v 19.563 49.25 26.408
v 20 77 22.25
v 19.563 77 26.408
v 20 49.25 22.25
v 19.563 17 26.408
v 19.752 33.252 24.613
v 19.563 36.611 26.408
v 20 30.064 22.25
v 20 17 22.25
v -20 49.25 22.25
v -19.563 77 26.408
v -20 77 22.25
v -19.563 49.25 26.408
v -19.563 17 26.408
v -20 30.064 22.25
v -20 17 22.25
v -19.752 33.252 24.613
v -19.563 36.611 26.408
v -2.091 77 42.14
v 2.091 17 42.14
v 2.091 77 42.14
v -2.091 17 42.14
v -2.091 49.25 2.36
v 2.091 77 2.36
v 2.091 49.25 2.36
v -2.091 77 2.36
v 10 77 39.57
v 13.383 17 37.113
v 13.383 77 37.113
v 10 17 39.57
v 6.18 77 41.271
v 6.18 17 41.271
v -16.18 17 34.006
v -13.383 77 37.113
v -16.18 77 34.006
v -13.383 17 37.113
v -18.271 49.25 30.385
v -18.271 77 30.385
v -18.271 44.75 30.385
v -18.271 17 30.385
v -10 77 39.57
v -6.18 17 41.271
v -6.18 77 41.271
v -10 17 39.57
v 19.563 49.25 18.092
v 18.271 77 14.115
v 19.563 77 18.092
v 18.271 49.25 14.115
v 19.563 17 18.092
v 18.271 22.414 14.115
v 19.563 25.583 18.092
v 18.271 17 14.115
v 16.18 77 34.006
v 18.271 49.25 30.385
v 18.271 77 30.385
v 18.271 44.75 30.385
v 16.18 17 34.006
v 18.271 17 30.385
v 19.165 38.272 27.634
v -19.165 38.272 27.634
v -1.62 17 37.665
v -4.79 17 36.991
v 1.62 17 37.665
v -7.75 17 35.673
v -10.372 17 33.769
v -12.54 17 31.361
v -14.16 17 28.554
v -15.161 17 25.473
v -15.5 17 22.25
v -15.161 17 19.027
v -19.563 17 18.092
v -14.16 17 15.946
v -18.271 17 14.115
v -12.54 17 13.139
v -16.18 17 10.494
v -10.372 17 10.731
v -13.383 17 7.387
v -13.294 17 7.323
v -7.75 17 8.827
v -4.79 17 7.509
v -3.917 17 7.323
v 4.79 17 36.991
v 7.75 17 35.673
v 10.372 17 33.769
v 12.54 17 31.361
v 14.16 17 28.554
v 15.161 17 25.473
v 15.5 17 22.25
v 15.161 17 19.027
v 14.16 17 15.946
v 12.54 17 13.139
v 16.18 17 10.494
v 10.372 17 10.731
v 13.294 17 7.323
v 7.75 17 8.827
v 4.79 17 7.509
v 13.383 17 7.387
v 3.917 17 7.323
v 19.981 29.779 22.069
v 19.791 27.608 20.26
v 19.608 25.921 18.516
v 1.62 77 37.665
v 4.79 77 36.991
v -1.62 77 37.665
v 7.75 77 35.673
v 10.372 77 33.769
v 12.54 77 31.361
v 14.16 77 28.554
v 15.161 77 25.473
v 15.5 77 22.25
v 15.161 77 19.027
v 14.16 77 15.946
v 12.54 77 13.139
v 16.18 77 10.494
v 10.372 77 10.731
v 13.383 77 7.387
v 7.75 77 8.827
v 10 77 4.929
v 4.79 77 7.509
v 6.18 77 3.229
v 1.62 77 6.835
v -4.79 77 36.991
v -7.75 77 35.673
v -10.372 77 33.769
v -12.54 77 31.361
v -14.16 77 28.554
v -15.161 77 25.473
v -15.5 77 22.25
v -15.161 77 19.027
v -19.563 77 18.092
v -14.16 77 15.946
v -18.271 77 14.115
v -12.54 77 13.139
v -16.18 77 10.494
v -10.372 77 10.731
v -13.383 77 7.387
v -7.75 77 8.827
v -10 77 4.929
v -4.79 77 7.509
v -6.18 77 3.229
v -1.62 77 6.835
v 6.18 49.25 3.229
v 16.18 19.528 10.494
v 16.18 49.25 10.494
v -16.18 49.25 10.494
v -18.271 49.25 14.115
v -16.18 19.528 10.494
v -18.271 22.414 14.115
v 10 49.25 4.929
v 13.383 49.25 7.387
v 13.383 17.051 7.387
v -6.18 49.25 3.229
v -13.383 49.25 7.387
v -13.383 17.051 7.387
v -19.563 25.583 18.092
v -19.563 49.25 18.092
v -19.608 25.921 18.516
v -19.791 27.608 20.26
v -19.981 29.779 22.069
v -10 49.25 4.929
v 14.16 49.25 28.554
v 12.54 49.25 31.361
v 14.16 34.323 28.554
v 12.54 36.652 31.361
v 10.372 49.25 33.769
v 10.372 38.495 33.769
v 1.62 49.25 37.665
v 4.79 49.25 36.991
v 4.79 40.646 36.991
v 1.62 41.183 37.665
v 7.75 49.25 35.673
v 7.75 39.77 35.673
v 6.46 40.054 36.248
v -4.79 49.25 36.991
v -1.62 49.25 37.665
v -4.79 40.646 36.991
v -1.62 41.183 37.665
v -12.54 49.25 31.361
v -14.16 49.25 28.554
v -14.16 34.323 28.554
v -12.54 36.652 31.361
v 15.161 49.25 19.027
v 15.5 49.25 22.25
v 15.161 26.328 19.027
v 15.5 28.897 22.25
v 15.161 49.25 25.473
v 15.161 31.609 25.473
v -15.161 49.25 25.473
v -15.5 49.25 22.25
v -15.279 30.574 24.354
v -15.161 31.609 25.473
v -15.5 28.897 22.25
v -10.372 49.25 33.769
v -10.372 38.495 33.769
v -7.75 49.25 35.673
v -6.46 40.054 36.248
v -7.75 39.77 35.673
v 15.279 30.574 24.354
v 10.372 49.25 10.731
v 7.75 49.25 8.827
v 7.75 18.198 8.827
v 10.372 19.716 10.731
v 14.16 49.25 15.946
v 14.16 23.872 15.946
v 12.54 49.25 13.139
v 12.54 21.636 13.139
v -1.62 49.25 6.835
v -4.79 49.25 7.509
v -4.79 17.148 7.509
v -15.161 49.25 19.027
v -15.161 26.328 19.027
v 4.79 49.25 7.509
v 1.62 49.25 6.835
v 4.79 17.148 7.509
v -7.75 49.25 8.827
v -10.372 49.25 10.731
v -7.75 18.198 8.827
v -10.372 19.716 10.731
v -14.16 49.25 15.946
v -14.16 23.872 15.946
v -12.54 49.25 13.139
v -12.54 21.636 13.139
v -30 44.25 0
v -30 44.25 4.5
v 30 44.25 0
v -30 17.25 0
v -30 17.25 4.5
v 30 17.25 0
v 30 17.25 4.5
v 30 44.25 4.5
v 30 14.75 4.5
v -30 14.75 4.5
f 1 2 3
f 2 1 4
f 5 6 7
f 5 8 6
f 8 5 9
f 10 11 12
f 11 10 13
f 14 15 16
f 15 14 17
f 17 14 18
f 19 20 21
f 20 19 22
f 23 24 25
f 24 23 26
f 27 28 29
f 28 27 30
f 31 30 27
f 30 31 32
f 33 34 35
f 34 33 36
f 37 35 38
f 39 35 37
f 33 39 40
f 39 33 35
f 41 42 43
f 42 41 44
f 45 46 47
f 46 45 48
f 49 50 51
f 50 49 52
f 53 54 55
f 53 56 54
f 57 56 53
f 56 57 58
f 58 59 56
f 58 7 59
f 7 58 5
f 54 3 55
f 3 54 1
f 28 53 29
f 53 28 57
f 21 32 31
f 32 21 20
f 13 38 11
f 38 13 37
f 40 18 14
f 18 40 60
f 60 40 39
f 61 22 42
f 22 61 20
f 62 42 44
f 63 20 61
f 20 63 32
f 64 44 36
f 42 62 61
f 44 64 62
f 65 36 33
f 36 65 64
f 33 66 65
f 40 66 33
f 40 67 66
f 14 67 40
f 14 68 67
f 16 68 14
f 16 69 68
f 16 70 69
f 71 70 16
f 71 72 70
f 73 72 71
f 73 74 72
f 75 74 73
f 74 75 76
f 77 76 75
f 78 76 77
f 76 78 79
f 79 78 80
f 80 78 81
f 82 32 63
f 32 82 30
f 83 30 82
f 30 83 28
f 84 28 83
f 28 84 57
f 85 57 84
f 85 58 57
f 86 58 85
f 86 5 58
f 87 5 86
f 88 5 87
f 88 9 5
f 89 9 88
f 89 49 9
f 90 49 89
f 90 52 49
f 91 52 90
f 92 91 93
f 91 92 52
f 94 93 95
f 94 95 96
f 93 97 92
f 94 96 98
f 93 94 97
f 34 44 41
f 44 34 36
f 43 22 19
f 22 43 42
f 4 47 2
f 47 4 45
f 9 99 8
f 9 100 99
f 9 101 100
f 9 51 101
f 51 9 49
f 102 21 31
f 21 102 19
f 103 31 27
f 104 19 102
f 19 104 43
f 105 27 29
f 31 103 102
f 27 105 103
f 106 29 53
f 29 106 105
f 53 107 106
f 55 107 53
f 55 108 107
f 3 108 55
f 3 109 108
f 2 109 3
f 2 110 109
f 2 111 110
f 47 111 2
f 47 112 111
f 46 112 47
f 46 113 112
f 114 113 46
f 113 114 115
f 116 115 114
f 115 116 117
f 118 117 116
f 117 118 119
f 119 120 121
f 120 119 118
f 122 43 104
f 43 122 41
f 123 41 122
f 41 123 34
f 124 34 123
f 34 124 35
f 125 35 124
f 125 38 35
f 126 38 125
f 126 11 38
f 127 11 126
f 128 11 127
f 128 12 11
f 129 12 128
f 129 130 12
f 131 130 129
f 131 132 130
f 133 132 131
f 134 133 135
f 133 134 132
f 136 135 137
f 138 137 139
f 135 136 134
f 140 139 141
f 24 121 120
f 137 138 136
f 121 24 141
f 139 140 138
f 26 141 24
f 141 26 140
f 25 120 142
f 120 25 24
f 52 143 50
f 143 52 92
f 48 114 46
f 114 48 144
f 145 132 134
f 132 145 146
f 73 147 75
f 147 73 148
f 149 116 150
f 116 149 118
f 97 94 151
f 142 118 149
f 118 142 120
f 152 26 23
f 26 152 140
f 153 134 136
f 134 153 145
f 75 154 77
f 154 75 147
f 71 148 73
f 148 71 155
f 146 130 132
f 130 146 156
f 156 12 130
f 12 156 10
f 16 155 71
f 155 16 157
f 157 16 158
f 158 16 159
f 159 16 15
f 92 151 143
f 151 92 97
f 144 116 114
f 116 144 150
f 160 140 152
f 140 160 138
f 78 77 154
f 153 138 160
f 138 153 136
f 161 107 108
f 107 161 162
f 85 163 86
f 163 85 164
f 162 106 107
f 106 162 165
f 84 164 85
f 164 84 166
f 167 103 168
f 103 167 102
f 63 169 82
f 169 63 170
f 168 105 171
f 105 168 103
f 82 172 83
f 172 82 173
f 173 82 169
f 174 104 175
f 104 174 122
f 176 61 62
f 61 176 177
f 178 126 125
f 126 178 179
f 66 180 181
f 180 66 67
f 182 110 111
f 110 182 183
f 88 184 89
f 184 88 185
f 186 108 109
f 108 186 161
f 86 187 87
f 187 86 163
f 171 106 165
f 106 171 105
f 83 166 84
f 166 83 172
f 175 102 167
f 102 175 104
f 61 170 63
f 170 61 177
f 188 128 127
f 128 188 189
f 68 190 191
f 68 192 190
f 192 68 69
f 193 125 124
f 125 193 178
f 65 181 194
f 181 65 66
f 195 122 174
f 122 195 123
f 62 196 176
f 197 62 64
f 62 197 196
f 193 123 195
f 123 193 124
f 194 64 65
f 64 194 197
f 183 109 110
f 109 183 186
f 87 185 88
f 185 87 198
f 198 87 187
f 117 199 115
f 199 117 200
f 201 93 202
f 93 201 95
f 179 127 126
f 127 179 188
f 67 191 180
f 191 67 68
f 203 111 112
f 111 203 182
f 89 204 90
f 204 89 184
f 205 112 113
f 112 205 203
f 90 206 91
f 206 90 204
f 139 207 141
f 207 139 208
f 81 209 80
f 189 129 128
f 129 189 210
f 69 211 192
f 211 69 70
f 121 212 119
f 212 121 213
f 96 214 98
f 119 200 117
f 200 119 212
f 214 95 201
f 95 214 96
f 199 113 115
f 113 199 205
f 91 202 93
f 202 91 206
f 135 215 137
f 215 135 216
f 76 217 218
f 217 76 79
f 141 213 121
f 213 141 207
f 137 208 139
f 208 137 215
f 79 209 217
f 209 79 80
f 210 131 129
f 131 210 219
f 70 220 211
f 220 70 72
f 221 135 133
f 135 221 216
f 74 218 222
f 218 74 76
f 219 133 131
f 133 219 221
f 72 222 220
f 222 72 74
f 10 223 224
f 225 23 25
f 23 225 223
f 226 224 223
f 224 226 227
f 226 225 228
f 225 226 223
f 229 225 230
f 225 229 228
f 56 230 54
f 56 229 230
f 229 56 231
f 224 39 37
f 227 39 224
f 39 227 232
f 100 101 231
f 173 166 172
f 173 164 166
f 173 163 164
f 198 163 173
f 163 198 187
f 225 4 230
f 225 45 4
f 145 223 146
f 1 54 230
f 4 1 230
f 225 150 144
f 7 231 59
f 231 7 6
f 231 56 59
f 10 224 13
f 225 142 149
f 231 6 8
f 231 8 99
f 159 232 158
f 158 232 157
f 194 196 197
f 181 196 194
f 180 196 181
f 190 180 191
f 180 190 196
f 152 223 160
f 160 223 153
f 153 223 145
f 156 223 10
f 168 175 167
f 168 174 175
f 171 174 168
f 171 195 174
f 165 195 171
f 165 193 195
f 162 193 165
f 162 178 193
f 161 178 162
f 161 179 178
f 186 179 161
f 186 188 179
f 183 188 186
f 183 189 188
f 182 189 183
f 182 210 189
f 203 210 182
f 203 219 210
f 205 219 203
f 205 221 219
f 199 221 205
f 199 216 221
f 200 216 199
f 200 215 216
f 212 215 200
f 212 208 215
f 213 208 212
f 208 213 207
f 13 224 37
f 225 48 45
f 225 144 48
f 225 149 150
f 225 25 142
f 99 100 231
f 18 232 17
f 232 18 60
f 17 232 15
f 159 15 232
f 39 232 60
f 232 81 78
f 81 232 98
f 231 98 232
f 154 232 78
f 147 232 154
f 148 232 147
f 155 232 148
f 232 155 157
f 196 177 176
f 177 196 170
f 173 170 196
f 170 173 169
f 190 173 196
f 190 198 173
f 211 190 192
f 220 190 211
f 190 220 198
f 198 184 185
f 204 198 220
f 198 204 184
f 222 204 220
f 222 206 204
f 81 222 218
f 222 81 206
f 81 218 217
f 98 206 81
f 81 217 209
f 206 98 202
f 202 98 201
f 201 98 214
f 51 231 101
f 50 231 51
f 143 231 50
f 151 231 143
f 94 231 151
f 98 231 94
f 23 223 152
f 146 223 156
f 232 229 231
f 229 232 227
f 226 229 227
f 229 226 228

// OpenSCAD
// Headphone Hook for 25mm desk thickness
// Uses friction-fit C-clamp design

// Constants
desk_thickness = 25;  // mm
wall_thickness = 4.5;  // mm (slightly above requirement for sturdiness)
hook_extension = 50;   // mm
hook_radius = 20;      // mm for headphone curve

// Main assembly
translate([0, 0, wall_thickness/2]) {
    difference() {
        union() {
            // Desk clamp (C-shaped bracket)
            translate([0, 0, 0])
            clamp_bracket();
            
            // Hook arm
            translate([0, wall_thickness + desk_thickness/2, 0])
            hook_arm();
        }
        
        // Remove inner space for desk
        translate([0, wall_thickness, 0])
        cube([100, desk_thickness + 0.5, wall_thickness], center=true);
        
        // Chamfer entry for easier desk insertion
        translate([0, wall_thickness/2, -wall_thickness/2])
        rotate([0, 0, 45])
        cube([10, 10, wall_thickness], center=true);
    }
}

module clamp_bracket() {
    // Main bracket that clamps to desk
    width = 60;  // mm wide enough for stability
    height = wall_thickness;
    depth = desk_thickness + 2*wall_thickness;
    
    translate([0, depth/2, 0])
    cube([width, depth, height], center=true);
}

module hook_arm() {
    // Curved hook for headphones
    arm_width = 60;  // Same as clamp for stability
    arm_height = 35; // Tall enough for most headbands
    
    // Solid curved hook
    hull() {
        // Base at desk edge
        translate([0, 0, 0])
        cube([arm_width, wall_thickness, wall_thickness], center=true);
        
        // Transition to curve
        translate([0, hook_extension/2, 0])
        cube([arm_width, wall_thickness, wall_thickness], center=true);
        
        // Curved tip
        translate([0, hook_extension - hook_radius, hook_radius])
        rotate([90, 0, 0])
        cylinder(r=hook_radius, h=wall_thickness, center=true);
    }
    
    // Add inner curve for headphone band
    translate([0, hook_extension - hook_radius, hook_radius])
    rotate([90, 0, 0])
    difference() {
        cylinder(r=hook_radius, h=arm_width, center=true);
        cylinder(r=hook_radius - wall_thickness, h=arm_width + 1, center=true);
    }
}
